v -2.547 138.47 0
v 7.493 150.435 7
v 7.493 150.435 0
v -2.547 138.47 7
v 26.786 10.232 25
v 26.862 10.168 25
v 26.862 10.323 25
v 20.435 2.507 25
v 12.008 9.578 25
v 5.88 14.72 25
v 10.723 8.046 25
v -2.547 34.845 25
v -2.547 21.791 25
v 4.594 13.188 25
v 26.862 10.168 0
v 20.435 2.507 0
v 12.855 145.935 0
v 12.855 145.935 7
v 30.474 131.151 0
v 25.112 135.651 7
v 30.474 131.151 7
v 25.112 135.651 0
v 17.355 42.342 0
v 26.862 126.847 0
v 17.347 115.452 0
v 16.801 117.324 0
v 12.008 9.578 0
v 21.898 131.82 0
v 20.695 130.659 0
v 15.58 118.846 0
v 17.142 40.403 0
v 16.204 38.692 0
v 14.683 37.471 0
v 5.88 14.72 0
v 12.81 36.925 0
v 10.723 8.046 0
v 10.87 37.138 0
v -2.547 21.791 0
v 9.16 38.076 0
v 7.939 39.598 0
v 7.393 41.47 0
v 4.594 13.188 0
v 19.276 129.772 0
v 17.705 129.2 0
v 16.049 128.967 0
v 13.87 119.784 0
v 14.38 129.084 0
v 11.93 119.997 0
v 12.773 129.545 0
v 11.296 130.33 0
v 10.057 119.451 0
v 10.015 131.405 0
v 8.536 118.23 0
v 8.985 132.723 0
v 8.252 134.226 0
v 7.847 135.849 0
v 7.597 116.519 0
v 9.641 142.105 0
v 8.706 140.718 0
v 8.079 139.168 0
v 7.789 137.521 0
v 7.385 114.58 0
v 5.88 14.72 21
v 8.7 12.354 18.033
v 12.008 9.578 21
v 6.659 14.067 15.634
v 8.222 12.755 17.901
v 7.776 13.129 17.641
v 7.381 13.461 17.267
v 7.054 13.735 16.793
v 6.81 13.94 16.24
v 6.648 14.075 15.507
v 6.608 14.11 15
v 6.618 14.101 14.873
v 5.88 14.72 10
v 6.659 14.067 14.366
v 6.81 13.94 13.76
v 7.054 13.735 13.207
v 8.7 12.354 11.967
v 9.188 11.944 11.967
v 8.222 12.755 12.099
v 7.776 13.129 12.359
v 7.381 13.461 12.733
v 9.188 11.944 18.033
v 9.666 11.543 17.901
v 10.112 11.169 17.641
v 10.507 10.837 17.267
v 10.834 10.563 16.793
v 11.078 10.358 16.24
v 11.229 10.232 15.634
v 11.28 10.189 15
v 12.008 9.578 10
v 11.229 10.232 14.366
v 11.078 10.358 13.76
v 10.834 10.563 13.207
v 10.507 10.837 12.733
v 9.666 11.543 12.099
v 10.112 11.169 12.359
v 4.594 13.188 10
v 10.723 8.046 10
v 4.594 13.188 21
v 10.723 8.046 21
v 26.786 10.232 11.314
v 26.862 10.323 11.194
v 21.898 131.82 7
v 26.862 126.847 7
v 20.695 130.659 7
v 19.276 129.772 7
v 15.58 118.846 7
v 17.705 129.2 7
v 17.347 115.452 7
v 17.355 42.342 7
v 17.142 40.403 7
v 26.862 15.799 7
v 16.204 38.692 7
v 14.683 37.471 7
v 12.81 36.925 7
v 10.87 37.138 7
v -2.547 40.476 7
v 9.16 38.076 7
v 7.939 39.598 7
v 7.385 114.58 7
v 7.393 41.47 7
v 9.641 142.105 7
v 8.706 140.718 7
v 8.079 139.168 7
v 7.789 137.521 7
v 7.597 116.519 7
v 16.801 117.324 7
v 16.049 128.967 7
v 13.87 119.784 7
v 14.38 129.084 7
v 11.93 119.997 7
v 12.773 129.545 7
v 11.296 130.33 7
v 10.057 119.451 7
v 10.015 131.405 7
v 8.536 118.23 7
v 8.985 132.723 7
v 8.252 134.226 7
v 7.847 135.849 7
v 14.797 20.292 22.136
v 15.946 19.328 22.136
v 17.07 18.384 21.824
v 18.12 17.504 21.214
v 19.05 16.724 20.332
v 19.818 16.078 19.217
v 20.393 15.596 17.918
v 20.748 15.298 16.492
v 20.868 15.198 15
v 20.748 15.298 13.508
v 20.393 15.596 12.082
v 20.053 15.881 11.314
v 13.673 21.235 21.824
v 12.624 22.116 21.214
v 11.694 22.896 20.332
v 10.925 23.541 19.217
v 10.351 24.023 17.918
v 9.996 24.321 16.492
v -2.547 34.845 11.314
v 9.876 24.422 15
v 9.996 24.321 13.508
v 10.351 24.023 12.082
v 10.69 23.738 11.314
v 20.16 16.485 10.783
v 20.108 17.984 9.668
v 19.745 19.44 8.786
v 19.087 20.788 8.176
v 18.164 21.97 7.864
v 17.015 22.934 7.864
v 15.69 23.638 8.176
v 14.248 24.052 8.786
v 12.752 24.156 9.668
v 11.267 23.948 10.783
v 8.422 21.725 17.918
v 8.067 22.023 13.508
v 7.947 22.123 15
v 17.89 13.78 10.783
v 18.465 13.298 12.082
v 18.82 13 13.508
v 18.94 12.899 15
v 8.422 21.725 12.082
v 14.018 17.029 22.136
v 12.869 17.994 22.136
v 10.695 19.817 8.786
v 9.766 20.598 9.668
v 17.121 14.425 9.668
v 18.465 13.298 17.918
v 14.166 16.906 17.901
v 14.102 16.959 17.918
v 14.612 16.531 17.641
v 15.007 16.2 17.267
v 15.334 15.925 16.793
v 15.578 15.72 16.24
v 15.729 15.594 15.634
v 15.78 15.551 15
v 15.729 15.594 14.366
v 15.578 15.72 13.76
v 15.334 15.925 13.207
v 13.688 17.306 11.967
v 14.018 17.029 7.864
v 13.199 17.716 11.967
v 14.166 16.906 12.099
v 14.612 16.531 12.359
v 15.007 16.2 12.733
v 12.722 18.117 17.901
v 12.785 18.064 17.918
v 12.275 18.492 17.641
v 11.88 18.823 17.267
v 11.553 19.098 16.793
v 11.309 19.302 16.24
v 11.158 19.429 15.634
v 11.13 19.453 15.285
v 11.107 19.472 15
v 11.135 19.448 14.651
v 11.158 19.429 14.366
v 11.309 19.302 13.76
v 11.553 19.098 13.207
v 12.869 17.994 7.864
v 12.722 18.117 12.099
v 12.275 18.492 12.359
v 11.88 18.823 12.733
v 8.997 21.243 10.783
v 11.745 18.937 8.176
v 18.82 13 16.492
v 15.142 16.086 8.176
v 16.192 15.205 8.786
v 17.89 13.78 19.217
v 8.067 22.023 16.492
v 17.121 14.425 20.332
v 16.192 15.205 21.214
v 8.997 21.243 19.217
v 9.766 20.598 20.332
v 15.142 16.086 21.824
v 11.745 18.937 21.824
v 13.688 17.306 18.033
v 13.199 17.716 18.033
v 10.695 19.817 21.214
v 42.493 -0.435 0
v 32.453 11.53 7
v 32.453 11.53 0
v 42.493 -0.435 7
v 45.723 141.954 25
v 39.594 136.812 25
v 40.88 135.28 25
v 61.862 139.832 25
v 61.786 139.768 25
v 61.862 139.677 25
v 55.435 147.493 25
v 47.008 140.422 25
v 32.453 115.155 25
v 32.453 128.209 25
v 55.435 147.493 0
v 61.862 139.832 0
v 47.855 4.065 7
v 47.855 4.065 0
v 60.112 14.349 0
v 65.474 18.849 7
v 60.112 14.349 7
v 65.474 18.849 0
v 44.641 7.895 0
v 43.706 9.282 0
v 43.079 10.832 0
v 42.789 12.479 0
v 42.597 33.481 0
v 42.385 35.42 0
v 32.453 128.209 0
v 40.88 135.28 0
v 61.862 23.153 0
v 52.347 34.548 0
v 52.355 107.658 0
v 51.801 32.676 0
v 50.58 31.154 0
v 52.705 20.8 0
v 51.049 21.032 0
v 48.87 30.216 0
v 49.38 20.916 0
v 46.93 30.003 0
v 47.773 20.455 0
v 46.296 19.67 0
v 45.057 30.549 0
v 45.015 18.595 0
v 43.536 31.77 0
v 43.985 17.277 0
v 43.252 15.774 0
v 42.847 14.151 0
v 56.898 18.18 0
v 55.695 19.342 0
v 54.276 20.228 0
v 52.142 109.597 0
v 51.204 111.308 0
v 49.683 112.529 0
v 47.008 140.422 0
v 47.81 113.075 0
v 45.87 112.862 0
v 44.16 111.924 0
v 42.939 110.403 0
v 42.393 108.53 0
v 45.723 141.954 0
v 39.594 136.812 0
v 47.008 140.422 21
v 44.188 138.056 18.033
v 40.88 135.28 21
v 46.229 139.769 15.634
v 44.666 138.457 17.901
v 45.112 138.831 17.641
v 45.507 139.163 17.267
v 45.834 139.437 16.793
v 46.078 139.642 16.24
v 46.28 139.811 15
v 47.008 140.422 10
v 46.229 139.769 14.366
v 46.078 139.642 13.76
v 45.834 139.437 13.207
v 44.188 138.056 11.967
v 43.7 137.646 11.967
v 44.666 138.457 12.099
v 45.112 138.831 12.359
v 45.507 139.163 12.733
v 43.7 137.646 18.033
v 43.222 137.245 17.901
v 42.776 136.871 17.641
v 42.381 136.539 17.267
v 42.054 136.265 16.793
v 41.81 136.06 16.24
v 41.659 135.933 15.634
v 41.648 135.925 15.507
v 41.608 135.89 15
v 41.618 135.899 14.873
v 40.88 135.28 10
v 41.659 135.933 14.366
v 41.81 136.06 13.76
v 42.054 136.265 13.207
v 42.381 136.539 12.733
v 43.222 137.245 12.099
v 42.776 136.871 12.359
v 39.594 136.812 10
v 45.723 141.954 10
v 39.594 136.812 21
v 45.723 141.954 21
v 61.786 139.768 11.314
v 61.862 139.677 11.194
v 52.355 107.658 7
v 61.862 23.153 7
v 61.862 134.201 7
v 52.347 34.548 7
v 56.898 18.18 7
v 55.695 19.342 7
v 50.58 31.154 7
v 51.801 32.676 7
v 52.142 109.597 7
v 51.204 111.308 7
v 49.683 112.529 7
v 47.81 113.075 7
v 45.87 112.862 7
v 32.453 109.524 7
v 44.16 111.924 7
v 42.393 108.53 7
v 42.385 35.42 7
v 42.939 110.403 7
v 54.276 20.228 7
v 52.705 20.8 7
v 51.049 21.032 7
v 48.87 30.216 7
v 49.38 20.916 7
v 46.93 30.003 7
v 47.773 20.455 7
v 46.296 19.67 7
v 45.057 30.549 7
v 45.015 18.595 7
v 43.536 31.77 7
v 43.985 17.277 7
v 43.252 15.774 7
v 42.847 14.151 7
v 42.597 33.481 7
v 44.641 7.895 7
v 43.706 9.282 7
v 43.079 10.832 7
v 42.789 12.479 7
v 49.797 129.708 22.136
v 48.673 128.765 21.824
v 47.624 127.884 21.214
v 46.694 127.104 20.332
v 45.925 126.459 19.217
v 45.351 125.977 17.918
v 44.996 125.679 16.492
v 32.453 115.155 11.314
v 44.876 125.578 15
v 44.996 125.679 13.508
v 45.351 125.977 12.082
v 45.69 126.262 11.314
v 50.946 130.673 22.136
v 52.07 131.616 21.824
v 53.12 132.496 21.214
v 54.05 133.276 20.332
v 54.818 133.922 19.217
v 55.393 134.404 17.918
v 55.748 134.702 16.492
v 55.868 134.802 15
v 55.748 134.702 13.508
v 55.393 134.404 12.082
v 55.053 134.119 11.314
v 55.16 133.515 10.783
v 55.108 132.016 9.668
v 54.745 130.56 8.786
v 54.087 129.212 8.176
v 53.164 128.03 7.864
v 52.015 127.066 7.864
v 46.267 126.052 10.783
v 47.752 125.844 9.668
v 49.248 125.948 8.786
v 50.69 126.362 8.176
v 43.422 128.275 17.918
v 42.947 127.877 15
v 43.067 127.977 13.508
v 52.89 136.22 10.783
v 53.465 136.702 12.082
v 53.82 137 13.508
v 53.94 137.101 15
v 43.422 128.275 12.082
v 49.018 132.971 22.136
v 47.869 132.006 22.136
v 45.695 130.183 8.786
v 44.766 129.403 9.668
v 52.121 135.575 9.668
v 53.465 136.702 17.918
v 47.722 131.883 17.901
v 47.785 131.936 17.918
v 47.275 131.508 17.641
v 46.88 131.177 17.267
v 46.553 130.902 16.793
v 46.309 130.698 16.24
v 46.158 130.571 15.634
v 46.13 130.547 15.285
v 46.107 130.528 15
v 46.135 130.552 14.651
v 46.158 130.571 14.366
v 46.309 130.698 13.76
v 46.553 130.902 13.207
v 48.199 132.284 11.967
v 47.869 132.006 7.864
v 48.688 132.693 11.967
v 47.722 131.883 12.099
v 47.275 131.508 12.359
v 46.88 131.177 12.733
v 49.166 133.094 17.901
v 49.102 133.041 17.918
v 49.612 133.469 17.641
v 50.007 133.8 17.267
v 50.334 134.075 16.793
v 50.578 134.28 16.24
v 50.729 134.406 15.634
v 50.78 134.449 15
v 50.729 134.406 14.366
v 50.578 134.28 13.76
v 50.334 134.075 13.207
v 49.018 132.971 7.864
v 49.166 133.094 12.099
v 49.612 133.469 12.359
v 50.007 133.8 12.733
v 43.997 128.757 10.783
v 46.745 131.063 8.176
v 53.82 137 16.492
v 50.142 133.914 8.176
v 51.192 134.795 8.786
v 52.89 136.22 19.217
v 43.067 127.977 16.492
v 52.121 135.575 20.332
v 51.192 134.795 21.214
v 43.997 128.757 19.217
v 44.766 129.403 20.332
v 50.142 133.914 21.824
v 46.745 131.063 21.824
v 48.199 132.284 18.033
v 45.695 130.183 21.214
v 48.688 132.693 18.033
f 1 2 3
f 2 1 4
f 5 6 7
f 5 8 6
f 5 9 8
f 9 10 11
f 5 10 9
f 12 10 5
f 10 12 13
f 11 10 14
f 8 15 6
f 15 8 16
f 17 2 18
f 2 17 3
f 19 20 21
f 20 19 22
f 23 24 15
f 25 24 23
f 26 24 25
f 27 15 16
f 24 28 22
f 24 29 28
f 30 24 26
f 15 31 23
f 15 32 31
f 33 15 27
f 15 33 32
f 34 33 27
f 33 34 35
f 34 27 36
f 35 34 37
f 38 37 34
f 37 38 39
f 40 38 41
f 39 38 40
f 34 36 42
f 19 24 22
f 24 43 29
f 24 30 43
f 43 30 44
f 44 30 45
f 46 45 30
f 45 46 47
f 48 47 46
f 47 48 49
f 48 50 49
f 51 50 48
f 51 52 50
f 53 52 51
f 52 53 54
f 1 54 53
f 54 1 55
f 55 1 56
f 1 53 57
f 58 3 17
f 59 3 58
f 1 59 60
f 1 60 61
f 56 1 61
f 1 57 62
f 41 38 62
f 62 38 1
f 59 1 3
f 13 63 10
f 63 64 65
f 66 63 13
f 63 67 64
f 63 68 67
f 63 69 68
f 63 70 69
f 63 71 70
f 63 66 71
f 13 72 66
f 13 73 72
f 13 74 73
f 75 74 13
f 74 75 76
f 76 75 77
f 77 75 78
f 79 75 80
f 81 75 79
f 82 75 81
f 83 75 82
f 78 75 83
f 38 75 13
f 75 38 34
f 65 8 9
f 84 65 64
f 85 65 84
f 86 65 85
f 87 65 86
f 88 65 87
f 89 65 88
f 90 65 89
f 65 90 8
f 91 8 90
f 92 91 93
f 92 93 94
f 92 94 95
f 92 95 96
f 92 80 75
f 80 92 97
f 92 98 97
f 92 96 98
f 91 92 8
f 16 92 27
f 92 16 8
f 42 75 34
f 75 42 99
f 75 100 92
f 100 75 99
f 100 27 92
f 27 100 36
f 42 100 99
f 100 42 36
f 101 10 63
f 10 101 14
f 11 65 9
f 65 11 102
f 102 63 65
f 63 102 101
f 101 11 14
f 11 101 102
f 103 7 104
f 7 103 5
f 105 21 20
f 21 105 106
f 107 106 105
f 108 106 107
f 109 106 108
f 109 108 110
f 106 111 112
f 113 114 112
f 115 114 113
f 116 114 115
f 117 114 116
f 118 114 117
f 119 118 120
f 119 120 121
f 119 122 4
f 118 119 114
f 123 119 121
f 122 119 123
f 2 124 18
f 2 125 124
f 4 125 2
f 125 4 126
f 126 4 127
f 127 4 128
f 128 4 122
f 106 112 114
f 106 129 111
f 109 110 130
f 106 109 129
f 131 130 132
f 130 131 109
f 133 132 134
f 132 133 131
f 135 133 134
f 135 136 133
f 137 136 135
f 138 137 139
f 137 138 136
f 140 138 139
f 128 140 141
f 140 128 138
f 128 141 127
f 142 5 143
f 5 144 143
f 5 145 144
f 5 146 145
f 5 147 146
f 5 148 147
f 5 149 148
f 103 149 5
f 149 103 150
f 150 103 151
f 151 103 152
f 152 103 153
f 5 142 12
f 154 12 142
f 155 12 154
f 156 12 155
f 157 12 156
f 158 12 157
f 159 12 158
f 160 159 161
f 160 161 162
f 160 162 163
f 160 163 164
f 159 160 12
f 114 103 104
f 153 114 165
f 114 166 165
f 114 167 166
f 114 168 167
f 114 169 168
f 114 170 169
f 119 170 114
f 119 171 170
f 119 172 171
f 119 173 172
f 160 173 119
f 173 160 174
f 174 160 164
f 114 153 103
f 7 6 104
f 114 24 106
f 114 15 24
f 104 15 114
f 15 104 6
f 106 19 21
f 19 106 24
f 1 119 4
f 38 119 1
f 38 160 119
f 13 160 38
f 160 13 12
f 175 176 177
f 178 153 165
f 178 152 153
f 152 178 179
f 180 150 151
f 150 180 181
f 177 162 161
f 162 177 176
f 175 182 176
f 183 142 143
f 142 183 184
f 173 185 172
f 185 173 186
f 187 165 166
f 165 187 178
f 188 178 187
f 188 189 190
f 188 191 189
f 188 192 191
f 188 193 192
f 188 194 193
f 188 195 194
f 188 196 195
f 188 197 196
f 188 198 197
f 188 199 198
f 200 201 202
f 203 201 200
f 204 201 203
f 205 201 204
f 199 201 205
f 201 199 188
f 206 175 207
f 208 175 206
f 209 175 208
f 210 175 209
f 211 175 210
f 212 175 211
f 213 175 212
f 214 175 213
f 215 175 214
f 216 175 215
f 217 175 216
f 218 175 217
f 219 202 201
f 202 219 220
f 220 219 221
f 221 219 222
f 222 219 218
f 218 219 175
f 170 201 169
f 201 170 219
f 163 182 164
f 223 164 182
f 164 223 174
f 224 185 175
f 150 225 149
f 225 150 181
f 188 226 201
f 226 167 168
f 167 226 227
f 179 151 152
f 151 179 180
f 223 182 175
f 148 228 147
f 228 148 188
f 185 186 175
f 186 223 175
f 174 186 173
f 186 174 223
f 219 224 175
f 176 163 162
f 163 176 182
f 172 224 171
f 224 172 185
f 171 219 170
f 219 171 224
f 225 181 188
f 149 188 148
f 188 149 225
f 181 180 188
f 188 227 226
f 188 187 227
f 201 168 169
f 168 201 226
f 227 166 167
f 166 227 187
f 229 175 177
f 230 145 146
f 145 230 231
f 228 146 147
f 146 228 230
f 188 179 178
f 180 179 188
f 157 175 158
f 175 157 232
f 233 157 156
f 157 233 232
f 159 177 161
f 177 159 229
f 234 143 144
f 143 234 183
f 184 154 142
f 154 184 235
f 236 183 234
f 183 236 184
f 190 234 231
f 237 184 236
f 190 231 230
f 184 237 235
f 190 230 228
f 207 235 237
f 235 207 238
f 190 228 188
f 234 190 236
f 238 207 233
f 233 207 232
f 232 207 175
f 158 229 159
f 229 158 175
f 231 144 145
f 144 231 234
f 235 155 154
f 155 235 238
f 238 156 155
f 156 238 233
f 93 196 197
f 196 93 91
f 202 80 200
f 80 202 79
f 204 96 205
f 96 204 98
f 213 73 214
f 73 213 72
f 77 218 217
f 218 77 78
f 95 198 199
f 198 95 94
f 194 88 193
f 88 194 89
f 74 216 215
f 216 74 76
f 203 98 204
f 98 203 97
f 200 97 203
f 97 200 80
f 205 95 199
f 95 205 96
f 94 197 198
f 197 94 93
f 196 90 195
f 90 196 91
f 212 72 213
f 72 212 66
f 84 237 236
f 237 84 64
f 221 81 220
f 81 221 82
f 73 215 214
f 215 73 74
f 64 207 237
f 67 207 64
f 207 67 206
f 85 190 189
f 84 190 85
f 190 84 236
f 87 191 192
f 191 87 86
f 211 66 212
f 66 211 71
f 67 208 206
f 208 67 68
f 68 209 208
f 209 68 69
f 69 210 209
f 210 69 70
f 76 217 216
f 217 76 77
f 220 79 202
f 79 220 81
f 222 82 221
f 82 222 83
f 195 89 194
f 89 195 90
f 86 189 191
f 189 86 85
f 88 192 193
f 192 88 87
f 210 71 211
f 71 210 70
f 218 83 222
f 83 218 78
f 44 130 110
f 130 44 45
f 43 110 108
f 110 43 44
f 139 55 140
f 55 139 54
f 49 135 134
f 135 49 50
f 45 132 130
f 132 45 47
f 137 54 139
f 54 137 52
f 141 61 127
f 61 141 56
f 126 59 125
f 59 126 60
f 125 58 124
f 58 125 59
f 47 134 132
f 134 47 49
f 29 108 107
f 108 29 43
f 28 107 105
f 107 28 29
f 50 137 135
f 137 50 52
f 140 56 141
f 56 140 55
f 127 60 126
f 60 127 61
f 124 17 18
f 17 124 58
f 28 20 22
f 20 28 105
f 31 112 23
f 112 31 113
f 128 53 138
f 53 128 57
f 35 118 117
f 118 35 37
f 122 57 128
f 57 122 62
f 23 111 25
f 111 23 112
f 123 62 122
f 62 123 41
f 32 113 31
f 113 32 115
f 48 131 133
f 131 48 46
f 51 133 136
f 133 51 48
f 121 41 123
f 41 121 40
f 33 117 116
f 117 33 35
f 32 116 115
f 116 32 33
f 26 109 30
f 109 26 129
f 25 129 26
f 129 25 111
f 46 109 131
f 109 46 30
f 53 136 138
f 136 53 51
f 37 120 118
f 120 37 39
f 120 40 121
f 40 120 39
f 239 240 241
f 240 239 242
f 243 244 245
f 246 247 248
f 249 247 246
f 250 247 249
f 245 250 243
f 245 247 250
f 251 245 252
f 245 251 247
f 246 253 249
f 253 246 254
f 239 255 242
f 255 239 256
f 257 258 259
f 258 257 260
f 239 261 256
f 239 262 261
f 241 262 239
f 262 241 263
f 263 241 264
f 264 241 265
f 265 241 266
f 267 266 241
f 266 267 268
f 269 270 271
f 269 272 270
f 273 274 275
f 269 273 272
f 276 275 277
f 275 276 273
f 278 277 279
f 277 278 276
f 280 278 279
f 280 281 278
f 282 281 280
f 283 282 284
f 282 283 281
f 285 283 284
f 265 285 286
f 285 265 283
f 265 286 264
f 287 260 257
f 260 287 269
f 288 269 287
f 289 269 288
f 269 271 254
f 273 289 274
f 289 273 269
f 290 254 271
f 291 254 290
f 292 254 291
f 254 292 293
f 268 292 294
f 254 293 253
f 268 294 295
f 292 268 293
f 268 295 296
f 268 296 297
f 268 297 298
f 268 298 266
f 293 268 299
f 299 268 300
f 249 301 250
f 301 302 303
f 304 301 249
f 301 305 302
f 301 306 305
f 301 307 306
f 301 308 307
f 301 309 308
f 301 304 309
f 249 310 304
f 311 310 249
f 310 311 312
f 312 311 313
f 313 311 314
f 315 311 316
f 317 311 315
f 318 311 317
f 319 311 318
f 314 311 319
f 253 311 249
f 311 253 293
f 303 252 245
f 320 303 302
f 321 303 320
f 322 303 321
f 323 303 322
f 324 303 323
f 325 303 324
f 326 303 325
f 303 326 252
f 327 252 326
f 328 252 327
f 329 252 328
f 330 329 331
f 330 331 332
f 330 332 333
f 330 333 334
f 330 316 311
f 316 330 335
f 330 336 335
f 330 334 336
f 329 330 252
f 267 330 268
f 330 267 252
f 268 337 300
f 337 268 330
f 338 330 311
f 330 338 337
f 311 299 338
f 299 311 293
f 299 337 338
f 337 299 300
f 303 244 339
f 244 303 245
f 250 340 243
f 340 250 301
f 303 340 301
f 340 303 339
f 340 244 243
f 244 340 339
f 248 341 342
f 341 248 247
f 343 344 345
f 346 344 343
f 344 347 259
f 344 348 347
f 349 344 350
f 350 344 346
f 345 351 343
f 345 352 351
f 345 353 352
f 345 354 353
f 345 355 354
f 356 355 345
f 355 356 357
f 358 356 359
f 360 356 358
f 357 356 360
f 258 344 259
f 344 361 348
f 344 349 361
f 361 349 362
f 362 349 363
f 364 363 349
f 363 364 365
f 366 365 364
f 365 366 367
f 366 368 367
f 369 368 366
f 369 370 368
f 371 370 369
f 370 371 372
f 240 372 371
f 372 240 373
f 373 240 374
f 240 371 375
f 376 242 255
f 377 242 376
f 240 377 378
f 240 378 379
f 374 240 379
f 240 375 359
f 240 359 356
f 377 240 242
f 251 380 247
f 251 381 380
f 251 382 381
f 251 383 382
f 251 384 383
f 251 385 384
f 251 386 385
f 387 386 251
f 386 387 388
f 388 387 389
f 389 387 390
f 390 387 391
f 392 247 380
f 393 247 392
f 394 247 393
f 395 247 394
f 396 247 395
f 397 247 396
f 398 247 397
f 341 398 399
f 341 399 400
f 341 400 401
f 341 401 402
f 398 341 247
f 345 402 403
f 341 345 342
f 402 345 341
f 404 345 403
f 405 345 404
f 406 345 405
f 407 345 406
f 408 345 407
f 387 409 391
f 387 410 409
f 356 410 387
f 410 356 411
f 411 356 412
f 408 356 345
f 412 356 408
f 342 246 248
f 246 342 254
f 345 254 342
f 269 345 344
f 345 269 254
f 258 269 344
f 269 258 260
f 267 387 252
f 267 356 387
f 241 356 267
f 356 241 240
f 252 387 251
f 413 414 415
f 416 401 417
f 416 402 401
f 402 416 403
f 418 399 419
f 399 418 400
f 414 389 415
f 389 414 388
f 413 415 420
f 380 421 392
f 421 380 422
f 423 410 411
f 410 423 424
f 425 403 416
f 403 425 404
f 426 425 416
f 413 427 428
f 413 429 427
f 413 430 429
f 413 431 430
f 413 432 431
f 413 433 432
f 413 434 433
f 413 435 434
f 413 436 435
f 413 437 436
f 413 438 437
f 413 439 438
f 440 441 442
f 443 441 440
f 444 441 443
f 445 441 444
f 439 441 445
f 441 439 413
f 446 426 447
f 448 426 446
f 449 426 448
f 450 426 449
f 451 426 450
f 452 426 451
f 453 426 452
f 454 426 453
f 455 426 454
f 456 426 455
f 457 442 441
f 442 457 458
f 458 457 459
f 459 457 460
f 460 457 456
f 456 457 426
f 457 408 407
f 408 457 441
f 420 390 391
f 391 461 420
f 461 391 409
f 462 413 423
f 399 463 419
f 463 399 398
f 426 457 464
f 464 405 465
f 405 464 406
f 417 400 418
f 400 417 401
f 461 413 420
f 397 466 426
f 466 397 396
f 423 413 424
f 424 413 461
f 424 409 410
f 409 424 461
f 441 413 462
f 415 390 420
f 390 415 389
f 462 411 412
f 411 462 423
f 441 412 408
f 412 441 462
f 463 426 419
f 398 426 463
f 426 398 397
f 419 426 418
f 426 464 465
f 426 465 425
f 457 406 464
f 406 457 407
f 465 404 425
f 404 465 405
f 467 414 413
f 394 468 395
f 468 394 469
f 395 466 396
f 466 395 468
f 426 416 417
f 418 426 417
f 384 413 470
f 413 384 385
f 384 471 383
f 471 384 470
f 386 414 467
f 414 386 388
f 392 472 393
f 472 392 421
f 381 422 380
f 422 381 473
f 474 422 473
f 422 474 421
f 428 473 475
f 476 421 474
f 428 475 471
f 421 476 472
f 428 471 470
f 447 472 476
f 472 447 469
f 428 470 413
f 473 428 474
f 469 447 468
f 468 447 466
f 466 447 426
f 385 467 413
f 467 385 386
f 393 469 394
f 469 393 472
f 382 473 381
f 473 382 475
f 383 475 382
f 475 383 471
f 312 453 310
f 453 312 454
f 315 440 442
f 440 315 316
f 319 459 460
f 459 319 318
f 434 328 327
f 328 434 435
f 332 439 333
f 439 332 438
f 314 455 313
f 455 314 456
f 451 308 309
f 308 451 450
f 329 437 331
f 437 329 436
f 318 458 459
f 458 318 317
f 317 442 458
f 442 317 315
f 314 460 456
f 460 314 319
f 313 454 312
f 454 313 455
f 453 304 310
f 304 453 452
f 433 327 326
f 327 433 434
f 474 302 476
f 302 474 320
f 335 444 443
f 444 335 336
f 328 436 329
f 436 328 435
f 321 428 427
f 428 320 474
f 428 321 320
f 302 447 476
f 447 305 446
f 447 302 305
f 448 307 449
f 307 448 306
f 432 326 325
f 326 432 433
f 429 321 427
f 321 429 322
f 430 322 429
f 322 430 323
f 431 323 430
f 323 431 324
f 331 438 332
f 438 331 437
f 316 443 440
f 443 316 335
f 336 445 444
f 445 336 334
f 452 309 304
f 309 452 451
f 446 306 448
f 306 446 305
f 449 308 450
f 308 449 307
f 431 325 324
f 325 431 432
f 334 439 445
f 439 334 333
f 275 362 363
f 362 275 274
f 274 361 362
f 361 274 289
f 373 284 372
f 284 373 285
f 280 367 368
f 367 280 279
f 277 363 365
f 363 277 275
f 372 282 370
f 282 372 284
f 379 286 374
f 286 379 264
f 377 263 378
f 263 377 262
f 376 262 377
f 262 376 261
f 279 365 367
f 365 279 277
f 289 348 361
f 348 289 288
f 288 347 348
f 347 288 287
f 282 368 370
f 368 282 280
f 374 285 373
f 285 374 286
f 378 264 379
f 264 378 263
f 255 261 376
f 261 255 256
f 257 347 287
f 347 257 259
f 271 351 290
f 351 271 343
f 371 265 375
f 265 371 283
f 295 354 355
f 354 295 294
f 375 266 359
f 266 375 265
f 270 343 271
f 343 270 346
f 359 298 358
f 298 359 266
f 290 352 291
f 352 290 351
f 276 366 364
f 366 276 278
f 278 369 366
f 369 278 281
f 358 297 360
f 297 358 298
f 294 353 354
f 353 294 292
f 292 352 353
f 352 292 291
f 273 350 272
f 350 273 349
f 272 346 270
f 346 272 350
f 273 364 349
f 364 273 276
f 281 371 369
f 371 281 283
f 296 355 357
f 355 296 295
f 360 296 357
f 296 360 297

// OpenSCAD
// file: ../configuration.scad
// Layer high for the printing [mm]
layer_height = 0.20; //Slic3r->Print Settings->Layers and perimeters->Layer height

// Spare for the screws heads [mm]
spare = 0.75;
// M6 screw diameter [mm]
M6_head_diameter = 13.6+spare;
//M6_head_diameter = 10.6+spare;
//M6_head_diameter = 12+spare;

// M6 head high (for hiding it) [mm]
//M6_head_height = 4;
M6_head_height = 3.6;
//M6_head_height = 4.5;

// Screws and rods diameters
M8_smooth_rod_diameter = 8.3;
M8_smooth_rod_diameter_catch = 8.4;
// Prumer 8mm tyce
rod_8mm_d = 8.2; //pro dil z-top
M6_diameter = 6.6;
M6_dia=M6_diameter; //pro dil z-top
M6_diamater_horizontal = 6.5;
M3_diameter = 3.7;
M3_diameter_horizontal = 3.5;

//matice trapézové tyče
TRAP_diameter_externa=22; //průmer vnější 


// Nuts diameters
M3_nut_diameter = 7.0;
M3_nut_diameter_horizontal = 6.7;

// ALU profile parameters
ALU_cut_width = 7.9;
ALU_cut_width_horizontal = 7.7;

// Sirka matky do profilu (pokud neni pouzita, tak 0)
//profile_nut_width = 9.5;
profile_nut_width = 0; //pro z-top

// Motors length/depth (for axes Z and Y)
//SX17-1003LQFE (recommended for the Z axis)
motor_length = 29.5;
//SX17-1003 (recommended for the Z axis)
//motor_length = 34;
//SX17-1005
//motor_length = 40;
//SX17-0905 - this motor is too high - the Z end stop holder has to be adjusted
//motor_length = 48;

// Extrusion width [mm]
extrusion_width = 0.66; //Slic3r->Print Settings->Advanced->Default extrusion width

/// Belt type ******************************************************

// GT2 
belt_tooth_distance = 2;
belt_tooth_ratio = 0.5;
belt_tooth_height = 1.4;
belt_thickness = 2.3;

/*
// T2.5
belt_tooth_distance = 2.5;
belt_tooth_ratio = 0.68;
*/
// main file
// RebeliX
//
// spool holder
// GNU GPL v3
// Martin Neruda <neruda@reprap4u.cz>
// http://www.reprap4u.cz
// Inspired by Rebel II

include <../configuration.scad>

height = 105;
thickness = 25;
width = height;

module drzak_zakladna(){
  translate([0,0,0]) cube([width,height,thickness]);
  translate([width-15-4,-2,0]) cube([8,3,10]);
  translate([width-15-4,-2,thickness-4]) cube([8,3,4]);

}

module drzak_rezy(){
  translate([width-30,0,-0.1]) rotate([0,0,130]) cube([200,width,40]);
  difference(){  
	translate([-0.1,10,7]) cube([width,height,40]);
    // Holder support
	translate([width-45,10,0]) rotate([45,0,0]) cube([45,8,8]);
  }
  intersection(){
    translate([width,10,-0.1]) rotate([0,0,40]) cube([height,height+35,40]);
    translate([30,0,-0.1]) cube([width,height+0.1,40]);
  }
  // M6 screw hole
  translate([width-15,7,15]) rotate([-90,0,0]) cylinder(r = M6_head_diameter/2, h = 10, $fn = 30);
  translate([width-15,-4,15]) rotate([-90,0,0]) cylinder(r = 3.05, h = 20, $fn = 30);
  // M8 rod hole
  translate([15,height-5,-0.1]) cylinder(r = 8, h = 20, $fn = 30);
  translate([15-8,height-5,-0.1]) cube([2*8,10,20]);
  // Material saving
  hull() {
	translate([width-31.5,25,-0.1]) cylinder(h=10,r=5);
	translate([width-78.5,width-24,-0.1]) cylinder(h=10,r=5);
  }
 }

// Whole part
module drzak_civky(){
 translate([-60,70,0]) rotate([0,0,-40]) 
 difference(){
   drzak_zakladna();
   drzak_rezy();
   
 }
 translate([-25,80,0]) rotate([0,0,-140]) mirror([1,0,0]) difference(){
  drzak_zakladna();
  drzak_rezy();
 }
}

drzak_civky();
